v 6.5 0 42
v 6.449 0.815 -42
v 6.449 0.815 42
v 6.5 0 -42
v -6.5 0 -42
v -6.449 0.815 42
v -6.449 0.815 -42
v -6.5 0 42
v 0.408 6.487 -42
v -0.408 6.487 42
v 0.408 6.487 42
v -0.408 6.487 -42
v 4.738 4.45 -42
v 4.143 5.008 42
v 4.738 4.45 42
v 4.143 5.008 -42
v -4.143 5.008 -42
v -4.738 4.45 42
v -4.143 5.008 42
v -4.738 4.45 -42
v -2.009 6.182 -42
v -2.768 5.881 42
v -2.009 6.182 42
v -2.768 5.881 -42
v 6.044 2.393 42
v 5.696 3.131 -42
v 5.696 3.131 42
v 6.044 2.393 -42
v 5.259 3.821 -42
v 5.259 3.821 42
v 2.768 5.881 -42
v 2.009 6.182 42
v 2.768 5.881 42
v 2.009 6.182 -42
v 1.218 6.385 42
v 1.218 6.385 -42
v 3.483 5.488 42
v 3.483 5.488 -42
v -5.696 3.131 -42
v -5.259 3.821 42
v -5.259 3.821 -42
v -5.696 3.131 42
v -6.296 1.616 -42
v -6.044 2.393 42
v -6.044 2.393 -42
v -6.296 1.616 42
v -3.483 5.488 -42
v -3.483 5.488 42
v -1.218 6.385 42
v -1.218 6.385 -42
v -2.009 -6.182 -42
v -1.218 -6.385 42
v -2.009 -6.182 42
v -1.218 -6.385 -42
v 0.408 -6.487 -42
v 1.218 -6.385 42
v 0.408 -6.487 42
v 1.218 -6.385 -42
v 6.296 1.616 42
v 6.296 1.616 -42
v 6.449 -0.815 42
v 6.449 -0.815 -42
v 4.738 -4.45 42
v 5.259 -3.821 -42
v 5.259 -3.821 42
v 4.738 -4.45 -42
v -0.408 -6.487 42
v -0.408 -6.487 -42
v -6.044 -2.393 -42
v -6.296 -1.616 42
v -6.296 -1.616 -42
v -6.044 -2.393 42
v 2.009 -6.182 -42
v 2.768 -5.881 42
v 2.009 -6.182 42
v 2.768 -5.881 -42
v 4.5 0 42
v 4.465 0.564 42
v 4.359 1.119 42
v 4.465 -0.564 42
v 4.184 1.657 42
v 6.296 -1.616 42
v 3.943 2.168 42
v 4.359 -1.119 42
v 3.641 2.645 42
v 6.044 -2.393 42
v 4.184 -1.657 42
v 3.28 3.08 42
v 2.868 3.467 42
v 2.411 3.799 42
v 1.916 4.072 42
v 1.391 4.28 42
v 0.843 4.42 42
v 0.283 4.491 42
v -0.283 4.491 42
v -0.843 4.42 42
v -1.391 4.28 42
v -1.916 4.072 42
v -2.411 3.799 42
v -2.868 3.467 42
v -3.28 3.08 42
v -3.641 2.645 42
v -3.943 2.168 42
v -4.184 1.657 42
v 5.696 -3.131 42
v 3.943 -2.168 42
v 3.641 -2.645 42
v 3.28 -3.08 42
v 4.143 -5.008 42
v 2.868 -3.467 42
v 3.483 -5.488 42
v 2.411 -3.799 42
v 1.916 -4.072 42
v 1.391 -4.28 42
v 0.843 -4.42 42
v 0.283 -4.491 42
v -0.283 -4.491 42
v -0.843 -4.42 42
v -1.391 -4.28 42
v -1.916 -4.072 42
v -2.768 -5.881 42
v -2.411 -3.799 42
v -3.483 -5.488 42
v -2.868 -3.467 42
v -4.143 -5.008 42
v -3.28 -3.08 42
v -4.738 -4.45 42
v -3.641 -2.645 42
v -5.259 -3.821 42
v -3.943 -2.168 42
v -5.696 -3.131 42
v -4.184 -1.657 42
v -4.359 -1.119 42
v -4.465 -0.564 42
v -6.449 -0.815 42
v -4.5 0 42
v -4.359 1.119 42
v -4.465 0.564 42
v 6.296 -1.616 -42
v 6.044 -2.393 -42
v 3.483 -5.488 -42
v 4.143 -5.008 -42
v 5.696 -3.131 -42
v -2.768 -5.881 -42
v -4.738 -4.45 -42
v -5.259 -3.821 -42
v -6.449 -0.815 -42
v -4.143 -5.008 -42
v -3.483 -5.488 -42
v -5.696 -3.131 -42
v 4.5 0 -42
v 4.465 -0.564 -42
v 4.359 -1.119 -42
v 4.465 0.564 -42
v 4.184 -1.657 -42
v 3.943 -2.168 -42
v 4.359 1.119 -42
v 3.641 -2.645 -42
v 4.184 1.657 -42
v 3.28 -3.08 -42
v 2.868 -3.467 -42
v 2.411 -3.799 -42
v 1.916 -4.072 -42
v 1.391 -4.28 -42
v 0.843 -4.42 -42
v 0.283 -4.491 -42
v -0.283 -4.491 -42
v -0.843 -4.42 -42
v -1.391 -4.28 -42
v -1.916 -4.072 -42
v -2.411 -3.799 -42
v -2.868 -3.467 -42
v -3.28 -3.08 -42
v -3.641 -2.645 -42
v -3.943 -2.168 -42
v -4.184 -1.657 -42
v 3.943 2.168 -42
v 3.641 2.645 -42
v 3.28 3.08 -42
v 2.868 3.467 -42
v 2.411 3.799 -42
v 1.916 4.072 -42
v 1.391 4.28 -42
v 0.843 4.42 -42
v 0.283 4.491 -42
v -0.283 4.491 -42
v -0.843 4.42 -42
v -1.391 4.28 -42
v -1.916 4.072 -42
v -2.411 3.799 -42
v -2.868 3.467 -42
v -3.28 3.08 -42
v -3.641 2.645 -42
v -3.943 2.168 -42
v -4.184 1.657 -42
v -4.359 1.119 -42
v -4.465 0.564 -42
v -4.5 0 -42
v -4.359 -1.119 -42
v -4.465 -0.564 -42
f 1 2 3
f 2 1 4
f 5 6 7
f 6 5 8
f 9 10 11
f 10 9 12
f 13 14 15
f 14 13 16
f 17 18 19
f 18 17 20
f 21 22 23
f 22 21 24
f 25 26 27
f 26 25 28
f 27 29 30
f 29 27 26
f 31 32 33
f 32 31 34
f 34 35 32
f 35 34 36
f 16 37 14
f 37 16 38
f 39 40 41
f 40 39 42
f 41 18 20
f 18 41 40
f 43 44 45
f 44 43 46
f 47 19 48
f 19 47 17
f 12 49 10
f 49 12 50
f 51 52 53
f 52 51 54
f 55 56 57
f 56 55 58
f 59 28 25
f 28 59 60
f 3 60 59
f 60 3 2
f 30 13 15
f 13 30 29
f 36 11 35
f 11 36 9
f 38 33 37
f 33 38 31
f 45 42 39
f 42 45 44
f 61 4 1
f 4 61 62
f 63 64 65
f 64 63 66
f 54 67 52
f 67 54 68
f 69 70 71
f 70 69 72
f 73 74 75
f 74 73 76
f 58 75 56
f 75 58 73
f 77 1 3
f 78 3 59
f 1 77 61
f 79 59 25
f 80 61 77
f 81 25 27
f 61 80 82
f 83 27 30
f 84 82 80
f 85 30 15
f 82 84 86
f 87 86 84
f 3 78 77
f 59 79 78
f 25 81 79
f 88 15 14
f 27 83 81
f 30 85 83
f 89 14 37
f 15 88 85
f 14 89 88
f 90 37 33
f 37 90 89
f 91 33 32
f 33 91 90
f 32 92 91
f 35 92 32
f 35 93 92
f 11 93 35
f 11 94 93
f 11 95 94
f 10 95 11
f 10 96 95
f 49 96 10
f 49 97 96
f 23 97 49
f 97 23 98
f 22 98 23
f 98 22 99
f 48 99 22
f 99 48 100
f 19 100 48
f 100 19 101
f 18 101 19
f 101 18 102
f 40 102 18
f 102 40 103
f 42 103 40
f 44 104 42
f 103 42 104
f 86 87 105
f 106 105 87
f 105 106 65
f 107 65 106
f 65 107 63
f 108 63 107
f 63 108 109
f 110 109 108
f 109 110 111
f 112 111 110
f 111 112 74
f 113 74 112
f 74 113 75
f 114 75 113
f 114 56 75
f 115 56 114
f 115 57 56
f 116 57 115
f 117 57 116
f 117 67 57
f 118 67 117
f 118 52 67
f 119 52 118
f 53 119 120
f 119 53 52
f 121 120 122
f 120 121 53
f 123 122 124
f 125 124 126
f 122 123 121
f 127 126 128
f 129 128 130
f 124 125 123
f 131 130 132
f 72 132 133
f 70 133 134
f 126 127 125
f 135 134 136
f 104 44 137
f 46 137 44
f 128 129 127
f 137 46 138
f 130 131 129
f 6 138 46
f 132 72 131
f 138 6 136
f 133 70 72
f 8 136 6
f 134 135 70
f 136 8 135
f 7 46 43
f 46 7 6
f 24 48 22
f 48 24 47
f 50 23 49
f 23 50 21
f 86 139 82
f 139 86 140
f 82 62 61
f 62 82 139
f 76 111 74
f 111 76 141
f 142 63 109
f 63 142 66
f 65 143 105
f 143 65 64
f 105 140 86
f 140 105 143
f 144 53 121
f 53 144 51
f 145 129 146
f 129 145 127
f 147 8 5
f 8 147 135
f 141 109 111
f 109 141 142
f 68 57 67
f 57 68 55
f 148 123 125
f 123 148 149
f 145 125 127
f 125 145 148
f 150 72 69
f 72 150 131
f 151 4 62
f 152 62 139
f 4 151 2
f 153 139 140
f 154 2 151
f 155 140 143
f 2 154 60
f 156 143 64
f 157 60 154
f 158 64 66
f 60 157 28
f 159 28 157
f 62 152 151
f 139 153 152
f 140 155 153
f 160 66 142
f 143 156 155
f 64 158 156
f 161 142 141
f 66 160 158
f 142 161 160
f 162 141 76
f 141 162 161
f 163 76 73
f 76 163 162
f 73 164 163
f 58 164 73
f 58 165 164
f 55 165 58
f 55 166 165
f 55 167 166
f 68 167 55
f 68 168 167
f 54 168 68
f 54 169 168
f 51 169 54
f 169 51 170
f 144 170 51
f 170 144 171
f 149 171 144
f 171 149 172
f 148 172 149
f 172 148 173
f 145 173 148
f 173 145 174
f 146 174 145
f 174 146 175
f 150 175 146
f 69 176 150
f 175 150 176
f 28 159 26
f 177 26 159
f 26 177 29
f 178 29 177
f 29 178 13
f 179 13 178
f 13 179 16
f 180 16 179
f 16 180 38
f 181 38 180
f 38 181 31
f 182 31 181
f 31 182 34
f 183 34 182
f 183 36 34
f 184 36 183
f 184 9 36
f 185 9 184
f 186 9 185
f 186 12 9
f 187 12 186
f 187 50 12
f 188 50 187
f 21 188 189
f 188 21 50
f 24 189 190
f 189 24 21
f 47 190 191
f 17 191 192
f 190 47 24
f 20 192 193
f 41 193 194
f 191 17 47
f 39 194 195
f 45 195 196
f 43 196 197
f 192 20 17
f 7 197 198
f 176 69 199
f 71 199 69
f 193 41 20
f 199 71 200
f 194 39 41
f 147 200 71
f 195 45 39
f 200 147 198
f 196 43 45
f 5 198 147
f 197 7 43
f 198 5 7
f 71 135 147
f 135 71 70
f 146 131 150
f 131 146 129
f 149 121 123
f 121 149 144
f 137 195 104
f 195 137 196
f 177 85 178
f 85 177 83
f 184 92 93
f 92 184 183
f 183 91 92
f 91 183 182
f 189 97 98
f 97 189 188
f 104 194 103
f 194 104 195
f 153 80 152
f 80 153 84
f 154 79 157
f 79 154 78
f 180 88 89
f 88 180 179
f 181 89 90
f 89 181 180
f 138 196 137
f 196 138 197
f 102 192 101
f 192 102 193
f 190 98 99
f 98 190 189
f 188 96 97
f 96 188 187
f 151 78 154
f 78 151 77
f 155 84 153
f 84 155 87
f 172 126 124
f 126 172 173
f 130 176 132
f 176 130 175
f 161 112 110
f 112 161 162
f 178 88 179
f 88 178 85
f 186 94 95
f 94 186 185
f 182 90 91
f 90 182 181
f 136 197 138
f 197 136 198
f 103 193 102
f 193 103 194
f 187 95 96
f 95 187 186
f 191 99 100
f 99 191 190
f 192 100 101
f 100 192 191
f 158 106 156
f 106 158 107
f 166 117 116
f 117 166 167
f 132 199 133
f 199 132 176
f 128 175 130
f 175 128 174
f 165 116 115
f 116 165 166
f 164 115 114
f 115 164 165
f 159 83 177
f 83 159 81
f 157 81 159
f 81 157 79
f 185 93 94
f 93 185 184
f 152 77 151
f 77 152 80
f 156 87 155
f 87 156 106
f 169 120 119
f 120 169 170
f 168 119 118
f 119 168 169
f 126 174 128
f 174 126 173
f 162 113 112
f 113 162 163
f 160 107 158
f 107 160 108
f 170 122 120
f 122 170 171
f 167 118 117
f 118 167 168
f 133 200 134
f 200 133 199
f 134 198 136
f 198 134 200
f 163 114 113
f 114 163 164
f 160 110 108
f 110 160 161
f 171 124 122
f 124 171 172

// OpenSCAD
$fn = 50;


difference() {
	union() {
		translate(v = [0, 0, -42.0000000000]) {
			cylinder(h = 84, r = 6.5000000000);
		}
	}
	union() {
		translate(v = [0, 0, -100.0000000000]) {
			cylinder(h = 200, r = 4.5000000000);
		}
	}
}
